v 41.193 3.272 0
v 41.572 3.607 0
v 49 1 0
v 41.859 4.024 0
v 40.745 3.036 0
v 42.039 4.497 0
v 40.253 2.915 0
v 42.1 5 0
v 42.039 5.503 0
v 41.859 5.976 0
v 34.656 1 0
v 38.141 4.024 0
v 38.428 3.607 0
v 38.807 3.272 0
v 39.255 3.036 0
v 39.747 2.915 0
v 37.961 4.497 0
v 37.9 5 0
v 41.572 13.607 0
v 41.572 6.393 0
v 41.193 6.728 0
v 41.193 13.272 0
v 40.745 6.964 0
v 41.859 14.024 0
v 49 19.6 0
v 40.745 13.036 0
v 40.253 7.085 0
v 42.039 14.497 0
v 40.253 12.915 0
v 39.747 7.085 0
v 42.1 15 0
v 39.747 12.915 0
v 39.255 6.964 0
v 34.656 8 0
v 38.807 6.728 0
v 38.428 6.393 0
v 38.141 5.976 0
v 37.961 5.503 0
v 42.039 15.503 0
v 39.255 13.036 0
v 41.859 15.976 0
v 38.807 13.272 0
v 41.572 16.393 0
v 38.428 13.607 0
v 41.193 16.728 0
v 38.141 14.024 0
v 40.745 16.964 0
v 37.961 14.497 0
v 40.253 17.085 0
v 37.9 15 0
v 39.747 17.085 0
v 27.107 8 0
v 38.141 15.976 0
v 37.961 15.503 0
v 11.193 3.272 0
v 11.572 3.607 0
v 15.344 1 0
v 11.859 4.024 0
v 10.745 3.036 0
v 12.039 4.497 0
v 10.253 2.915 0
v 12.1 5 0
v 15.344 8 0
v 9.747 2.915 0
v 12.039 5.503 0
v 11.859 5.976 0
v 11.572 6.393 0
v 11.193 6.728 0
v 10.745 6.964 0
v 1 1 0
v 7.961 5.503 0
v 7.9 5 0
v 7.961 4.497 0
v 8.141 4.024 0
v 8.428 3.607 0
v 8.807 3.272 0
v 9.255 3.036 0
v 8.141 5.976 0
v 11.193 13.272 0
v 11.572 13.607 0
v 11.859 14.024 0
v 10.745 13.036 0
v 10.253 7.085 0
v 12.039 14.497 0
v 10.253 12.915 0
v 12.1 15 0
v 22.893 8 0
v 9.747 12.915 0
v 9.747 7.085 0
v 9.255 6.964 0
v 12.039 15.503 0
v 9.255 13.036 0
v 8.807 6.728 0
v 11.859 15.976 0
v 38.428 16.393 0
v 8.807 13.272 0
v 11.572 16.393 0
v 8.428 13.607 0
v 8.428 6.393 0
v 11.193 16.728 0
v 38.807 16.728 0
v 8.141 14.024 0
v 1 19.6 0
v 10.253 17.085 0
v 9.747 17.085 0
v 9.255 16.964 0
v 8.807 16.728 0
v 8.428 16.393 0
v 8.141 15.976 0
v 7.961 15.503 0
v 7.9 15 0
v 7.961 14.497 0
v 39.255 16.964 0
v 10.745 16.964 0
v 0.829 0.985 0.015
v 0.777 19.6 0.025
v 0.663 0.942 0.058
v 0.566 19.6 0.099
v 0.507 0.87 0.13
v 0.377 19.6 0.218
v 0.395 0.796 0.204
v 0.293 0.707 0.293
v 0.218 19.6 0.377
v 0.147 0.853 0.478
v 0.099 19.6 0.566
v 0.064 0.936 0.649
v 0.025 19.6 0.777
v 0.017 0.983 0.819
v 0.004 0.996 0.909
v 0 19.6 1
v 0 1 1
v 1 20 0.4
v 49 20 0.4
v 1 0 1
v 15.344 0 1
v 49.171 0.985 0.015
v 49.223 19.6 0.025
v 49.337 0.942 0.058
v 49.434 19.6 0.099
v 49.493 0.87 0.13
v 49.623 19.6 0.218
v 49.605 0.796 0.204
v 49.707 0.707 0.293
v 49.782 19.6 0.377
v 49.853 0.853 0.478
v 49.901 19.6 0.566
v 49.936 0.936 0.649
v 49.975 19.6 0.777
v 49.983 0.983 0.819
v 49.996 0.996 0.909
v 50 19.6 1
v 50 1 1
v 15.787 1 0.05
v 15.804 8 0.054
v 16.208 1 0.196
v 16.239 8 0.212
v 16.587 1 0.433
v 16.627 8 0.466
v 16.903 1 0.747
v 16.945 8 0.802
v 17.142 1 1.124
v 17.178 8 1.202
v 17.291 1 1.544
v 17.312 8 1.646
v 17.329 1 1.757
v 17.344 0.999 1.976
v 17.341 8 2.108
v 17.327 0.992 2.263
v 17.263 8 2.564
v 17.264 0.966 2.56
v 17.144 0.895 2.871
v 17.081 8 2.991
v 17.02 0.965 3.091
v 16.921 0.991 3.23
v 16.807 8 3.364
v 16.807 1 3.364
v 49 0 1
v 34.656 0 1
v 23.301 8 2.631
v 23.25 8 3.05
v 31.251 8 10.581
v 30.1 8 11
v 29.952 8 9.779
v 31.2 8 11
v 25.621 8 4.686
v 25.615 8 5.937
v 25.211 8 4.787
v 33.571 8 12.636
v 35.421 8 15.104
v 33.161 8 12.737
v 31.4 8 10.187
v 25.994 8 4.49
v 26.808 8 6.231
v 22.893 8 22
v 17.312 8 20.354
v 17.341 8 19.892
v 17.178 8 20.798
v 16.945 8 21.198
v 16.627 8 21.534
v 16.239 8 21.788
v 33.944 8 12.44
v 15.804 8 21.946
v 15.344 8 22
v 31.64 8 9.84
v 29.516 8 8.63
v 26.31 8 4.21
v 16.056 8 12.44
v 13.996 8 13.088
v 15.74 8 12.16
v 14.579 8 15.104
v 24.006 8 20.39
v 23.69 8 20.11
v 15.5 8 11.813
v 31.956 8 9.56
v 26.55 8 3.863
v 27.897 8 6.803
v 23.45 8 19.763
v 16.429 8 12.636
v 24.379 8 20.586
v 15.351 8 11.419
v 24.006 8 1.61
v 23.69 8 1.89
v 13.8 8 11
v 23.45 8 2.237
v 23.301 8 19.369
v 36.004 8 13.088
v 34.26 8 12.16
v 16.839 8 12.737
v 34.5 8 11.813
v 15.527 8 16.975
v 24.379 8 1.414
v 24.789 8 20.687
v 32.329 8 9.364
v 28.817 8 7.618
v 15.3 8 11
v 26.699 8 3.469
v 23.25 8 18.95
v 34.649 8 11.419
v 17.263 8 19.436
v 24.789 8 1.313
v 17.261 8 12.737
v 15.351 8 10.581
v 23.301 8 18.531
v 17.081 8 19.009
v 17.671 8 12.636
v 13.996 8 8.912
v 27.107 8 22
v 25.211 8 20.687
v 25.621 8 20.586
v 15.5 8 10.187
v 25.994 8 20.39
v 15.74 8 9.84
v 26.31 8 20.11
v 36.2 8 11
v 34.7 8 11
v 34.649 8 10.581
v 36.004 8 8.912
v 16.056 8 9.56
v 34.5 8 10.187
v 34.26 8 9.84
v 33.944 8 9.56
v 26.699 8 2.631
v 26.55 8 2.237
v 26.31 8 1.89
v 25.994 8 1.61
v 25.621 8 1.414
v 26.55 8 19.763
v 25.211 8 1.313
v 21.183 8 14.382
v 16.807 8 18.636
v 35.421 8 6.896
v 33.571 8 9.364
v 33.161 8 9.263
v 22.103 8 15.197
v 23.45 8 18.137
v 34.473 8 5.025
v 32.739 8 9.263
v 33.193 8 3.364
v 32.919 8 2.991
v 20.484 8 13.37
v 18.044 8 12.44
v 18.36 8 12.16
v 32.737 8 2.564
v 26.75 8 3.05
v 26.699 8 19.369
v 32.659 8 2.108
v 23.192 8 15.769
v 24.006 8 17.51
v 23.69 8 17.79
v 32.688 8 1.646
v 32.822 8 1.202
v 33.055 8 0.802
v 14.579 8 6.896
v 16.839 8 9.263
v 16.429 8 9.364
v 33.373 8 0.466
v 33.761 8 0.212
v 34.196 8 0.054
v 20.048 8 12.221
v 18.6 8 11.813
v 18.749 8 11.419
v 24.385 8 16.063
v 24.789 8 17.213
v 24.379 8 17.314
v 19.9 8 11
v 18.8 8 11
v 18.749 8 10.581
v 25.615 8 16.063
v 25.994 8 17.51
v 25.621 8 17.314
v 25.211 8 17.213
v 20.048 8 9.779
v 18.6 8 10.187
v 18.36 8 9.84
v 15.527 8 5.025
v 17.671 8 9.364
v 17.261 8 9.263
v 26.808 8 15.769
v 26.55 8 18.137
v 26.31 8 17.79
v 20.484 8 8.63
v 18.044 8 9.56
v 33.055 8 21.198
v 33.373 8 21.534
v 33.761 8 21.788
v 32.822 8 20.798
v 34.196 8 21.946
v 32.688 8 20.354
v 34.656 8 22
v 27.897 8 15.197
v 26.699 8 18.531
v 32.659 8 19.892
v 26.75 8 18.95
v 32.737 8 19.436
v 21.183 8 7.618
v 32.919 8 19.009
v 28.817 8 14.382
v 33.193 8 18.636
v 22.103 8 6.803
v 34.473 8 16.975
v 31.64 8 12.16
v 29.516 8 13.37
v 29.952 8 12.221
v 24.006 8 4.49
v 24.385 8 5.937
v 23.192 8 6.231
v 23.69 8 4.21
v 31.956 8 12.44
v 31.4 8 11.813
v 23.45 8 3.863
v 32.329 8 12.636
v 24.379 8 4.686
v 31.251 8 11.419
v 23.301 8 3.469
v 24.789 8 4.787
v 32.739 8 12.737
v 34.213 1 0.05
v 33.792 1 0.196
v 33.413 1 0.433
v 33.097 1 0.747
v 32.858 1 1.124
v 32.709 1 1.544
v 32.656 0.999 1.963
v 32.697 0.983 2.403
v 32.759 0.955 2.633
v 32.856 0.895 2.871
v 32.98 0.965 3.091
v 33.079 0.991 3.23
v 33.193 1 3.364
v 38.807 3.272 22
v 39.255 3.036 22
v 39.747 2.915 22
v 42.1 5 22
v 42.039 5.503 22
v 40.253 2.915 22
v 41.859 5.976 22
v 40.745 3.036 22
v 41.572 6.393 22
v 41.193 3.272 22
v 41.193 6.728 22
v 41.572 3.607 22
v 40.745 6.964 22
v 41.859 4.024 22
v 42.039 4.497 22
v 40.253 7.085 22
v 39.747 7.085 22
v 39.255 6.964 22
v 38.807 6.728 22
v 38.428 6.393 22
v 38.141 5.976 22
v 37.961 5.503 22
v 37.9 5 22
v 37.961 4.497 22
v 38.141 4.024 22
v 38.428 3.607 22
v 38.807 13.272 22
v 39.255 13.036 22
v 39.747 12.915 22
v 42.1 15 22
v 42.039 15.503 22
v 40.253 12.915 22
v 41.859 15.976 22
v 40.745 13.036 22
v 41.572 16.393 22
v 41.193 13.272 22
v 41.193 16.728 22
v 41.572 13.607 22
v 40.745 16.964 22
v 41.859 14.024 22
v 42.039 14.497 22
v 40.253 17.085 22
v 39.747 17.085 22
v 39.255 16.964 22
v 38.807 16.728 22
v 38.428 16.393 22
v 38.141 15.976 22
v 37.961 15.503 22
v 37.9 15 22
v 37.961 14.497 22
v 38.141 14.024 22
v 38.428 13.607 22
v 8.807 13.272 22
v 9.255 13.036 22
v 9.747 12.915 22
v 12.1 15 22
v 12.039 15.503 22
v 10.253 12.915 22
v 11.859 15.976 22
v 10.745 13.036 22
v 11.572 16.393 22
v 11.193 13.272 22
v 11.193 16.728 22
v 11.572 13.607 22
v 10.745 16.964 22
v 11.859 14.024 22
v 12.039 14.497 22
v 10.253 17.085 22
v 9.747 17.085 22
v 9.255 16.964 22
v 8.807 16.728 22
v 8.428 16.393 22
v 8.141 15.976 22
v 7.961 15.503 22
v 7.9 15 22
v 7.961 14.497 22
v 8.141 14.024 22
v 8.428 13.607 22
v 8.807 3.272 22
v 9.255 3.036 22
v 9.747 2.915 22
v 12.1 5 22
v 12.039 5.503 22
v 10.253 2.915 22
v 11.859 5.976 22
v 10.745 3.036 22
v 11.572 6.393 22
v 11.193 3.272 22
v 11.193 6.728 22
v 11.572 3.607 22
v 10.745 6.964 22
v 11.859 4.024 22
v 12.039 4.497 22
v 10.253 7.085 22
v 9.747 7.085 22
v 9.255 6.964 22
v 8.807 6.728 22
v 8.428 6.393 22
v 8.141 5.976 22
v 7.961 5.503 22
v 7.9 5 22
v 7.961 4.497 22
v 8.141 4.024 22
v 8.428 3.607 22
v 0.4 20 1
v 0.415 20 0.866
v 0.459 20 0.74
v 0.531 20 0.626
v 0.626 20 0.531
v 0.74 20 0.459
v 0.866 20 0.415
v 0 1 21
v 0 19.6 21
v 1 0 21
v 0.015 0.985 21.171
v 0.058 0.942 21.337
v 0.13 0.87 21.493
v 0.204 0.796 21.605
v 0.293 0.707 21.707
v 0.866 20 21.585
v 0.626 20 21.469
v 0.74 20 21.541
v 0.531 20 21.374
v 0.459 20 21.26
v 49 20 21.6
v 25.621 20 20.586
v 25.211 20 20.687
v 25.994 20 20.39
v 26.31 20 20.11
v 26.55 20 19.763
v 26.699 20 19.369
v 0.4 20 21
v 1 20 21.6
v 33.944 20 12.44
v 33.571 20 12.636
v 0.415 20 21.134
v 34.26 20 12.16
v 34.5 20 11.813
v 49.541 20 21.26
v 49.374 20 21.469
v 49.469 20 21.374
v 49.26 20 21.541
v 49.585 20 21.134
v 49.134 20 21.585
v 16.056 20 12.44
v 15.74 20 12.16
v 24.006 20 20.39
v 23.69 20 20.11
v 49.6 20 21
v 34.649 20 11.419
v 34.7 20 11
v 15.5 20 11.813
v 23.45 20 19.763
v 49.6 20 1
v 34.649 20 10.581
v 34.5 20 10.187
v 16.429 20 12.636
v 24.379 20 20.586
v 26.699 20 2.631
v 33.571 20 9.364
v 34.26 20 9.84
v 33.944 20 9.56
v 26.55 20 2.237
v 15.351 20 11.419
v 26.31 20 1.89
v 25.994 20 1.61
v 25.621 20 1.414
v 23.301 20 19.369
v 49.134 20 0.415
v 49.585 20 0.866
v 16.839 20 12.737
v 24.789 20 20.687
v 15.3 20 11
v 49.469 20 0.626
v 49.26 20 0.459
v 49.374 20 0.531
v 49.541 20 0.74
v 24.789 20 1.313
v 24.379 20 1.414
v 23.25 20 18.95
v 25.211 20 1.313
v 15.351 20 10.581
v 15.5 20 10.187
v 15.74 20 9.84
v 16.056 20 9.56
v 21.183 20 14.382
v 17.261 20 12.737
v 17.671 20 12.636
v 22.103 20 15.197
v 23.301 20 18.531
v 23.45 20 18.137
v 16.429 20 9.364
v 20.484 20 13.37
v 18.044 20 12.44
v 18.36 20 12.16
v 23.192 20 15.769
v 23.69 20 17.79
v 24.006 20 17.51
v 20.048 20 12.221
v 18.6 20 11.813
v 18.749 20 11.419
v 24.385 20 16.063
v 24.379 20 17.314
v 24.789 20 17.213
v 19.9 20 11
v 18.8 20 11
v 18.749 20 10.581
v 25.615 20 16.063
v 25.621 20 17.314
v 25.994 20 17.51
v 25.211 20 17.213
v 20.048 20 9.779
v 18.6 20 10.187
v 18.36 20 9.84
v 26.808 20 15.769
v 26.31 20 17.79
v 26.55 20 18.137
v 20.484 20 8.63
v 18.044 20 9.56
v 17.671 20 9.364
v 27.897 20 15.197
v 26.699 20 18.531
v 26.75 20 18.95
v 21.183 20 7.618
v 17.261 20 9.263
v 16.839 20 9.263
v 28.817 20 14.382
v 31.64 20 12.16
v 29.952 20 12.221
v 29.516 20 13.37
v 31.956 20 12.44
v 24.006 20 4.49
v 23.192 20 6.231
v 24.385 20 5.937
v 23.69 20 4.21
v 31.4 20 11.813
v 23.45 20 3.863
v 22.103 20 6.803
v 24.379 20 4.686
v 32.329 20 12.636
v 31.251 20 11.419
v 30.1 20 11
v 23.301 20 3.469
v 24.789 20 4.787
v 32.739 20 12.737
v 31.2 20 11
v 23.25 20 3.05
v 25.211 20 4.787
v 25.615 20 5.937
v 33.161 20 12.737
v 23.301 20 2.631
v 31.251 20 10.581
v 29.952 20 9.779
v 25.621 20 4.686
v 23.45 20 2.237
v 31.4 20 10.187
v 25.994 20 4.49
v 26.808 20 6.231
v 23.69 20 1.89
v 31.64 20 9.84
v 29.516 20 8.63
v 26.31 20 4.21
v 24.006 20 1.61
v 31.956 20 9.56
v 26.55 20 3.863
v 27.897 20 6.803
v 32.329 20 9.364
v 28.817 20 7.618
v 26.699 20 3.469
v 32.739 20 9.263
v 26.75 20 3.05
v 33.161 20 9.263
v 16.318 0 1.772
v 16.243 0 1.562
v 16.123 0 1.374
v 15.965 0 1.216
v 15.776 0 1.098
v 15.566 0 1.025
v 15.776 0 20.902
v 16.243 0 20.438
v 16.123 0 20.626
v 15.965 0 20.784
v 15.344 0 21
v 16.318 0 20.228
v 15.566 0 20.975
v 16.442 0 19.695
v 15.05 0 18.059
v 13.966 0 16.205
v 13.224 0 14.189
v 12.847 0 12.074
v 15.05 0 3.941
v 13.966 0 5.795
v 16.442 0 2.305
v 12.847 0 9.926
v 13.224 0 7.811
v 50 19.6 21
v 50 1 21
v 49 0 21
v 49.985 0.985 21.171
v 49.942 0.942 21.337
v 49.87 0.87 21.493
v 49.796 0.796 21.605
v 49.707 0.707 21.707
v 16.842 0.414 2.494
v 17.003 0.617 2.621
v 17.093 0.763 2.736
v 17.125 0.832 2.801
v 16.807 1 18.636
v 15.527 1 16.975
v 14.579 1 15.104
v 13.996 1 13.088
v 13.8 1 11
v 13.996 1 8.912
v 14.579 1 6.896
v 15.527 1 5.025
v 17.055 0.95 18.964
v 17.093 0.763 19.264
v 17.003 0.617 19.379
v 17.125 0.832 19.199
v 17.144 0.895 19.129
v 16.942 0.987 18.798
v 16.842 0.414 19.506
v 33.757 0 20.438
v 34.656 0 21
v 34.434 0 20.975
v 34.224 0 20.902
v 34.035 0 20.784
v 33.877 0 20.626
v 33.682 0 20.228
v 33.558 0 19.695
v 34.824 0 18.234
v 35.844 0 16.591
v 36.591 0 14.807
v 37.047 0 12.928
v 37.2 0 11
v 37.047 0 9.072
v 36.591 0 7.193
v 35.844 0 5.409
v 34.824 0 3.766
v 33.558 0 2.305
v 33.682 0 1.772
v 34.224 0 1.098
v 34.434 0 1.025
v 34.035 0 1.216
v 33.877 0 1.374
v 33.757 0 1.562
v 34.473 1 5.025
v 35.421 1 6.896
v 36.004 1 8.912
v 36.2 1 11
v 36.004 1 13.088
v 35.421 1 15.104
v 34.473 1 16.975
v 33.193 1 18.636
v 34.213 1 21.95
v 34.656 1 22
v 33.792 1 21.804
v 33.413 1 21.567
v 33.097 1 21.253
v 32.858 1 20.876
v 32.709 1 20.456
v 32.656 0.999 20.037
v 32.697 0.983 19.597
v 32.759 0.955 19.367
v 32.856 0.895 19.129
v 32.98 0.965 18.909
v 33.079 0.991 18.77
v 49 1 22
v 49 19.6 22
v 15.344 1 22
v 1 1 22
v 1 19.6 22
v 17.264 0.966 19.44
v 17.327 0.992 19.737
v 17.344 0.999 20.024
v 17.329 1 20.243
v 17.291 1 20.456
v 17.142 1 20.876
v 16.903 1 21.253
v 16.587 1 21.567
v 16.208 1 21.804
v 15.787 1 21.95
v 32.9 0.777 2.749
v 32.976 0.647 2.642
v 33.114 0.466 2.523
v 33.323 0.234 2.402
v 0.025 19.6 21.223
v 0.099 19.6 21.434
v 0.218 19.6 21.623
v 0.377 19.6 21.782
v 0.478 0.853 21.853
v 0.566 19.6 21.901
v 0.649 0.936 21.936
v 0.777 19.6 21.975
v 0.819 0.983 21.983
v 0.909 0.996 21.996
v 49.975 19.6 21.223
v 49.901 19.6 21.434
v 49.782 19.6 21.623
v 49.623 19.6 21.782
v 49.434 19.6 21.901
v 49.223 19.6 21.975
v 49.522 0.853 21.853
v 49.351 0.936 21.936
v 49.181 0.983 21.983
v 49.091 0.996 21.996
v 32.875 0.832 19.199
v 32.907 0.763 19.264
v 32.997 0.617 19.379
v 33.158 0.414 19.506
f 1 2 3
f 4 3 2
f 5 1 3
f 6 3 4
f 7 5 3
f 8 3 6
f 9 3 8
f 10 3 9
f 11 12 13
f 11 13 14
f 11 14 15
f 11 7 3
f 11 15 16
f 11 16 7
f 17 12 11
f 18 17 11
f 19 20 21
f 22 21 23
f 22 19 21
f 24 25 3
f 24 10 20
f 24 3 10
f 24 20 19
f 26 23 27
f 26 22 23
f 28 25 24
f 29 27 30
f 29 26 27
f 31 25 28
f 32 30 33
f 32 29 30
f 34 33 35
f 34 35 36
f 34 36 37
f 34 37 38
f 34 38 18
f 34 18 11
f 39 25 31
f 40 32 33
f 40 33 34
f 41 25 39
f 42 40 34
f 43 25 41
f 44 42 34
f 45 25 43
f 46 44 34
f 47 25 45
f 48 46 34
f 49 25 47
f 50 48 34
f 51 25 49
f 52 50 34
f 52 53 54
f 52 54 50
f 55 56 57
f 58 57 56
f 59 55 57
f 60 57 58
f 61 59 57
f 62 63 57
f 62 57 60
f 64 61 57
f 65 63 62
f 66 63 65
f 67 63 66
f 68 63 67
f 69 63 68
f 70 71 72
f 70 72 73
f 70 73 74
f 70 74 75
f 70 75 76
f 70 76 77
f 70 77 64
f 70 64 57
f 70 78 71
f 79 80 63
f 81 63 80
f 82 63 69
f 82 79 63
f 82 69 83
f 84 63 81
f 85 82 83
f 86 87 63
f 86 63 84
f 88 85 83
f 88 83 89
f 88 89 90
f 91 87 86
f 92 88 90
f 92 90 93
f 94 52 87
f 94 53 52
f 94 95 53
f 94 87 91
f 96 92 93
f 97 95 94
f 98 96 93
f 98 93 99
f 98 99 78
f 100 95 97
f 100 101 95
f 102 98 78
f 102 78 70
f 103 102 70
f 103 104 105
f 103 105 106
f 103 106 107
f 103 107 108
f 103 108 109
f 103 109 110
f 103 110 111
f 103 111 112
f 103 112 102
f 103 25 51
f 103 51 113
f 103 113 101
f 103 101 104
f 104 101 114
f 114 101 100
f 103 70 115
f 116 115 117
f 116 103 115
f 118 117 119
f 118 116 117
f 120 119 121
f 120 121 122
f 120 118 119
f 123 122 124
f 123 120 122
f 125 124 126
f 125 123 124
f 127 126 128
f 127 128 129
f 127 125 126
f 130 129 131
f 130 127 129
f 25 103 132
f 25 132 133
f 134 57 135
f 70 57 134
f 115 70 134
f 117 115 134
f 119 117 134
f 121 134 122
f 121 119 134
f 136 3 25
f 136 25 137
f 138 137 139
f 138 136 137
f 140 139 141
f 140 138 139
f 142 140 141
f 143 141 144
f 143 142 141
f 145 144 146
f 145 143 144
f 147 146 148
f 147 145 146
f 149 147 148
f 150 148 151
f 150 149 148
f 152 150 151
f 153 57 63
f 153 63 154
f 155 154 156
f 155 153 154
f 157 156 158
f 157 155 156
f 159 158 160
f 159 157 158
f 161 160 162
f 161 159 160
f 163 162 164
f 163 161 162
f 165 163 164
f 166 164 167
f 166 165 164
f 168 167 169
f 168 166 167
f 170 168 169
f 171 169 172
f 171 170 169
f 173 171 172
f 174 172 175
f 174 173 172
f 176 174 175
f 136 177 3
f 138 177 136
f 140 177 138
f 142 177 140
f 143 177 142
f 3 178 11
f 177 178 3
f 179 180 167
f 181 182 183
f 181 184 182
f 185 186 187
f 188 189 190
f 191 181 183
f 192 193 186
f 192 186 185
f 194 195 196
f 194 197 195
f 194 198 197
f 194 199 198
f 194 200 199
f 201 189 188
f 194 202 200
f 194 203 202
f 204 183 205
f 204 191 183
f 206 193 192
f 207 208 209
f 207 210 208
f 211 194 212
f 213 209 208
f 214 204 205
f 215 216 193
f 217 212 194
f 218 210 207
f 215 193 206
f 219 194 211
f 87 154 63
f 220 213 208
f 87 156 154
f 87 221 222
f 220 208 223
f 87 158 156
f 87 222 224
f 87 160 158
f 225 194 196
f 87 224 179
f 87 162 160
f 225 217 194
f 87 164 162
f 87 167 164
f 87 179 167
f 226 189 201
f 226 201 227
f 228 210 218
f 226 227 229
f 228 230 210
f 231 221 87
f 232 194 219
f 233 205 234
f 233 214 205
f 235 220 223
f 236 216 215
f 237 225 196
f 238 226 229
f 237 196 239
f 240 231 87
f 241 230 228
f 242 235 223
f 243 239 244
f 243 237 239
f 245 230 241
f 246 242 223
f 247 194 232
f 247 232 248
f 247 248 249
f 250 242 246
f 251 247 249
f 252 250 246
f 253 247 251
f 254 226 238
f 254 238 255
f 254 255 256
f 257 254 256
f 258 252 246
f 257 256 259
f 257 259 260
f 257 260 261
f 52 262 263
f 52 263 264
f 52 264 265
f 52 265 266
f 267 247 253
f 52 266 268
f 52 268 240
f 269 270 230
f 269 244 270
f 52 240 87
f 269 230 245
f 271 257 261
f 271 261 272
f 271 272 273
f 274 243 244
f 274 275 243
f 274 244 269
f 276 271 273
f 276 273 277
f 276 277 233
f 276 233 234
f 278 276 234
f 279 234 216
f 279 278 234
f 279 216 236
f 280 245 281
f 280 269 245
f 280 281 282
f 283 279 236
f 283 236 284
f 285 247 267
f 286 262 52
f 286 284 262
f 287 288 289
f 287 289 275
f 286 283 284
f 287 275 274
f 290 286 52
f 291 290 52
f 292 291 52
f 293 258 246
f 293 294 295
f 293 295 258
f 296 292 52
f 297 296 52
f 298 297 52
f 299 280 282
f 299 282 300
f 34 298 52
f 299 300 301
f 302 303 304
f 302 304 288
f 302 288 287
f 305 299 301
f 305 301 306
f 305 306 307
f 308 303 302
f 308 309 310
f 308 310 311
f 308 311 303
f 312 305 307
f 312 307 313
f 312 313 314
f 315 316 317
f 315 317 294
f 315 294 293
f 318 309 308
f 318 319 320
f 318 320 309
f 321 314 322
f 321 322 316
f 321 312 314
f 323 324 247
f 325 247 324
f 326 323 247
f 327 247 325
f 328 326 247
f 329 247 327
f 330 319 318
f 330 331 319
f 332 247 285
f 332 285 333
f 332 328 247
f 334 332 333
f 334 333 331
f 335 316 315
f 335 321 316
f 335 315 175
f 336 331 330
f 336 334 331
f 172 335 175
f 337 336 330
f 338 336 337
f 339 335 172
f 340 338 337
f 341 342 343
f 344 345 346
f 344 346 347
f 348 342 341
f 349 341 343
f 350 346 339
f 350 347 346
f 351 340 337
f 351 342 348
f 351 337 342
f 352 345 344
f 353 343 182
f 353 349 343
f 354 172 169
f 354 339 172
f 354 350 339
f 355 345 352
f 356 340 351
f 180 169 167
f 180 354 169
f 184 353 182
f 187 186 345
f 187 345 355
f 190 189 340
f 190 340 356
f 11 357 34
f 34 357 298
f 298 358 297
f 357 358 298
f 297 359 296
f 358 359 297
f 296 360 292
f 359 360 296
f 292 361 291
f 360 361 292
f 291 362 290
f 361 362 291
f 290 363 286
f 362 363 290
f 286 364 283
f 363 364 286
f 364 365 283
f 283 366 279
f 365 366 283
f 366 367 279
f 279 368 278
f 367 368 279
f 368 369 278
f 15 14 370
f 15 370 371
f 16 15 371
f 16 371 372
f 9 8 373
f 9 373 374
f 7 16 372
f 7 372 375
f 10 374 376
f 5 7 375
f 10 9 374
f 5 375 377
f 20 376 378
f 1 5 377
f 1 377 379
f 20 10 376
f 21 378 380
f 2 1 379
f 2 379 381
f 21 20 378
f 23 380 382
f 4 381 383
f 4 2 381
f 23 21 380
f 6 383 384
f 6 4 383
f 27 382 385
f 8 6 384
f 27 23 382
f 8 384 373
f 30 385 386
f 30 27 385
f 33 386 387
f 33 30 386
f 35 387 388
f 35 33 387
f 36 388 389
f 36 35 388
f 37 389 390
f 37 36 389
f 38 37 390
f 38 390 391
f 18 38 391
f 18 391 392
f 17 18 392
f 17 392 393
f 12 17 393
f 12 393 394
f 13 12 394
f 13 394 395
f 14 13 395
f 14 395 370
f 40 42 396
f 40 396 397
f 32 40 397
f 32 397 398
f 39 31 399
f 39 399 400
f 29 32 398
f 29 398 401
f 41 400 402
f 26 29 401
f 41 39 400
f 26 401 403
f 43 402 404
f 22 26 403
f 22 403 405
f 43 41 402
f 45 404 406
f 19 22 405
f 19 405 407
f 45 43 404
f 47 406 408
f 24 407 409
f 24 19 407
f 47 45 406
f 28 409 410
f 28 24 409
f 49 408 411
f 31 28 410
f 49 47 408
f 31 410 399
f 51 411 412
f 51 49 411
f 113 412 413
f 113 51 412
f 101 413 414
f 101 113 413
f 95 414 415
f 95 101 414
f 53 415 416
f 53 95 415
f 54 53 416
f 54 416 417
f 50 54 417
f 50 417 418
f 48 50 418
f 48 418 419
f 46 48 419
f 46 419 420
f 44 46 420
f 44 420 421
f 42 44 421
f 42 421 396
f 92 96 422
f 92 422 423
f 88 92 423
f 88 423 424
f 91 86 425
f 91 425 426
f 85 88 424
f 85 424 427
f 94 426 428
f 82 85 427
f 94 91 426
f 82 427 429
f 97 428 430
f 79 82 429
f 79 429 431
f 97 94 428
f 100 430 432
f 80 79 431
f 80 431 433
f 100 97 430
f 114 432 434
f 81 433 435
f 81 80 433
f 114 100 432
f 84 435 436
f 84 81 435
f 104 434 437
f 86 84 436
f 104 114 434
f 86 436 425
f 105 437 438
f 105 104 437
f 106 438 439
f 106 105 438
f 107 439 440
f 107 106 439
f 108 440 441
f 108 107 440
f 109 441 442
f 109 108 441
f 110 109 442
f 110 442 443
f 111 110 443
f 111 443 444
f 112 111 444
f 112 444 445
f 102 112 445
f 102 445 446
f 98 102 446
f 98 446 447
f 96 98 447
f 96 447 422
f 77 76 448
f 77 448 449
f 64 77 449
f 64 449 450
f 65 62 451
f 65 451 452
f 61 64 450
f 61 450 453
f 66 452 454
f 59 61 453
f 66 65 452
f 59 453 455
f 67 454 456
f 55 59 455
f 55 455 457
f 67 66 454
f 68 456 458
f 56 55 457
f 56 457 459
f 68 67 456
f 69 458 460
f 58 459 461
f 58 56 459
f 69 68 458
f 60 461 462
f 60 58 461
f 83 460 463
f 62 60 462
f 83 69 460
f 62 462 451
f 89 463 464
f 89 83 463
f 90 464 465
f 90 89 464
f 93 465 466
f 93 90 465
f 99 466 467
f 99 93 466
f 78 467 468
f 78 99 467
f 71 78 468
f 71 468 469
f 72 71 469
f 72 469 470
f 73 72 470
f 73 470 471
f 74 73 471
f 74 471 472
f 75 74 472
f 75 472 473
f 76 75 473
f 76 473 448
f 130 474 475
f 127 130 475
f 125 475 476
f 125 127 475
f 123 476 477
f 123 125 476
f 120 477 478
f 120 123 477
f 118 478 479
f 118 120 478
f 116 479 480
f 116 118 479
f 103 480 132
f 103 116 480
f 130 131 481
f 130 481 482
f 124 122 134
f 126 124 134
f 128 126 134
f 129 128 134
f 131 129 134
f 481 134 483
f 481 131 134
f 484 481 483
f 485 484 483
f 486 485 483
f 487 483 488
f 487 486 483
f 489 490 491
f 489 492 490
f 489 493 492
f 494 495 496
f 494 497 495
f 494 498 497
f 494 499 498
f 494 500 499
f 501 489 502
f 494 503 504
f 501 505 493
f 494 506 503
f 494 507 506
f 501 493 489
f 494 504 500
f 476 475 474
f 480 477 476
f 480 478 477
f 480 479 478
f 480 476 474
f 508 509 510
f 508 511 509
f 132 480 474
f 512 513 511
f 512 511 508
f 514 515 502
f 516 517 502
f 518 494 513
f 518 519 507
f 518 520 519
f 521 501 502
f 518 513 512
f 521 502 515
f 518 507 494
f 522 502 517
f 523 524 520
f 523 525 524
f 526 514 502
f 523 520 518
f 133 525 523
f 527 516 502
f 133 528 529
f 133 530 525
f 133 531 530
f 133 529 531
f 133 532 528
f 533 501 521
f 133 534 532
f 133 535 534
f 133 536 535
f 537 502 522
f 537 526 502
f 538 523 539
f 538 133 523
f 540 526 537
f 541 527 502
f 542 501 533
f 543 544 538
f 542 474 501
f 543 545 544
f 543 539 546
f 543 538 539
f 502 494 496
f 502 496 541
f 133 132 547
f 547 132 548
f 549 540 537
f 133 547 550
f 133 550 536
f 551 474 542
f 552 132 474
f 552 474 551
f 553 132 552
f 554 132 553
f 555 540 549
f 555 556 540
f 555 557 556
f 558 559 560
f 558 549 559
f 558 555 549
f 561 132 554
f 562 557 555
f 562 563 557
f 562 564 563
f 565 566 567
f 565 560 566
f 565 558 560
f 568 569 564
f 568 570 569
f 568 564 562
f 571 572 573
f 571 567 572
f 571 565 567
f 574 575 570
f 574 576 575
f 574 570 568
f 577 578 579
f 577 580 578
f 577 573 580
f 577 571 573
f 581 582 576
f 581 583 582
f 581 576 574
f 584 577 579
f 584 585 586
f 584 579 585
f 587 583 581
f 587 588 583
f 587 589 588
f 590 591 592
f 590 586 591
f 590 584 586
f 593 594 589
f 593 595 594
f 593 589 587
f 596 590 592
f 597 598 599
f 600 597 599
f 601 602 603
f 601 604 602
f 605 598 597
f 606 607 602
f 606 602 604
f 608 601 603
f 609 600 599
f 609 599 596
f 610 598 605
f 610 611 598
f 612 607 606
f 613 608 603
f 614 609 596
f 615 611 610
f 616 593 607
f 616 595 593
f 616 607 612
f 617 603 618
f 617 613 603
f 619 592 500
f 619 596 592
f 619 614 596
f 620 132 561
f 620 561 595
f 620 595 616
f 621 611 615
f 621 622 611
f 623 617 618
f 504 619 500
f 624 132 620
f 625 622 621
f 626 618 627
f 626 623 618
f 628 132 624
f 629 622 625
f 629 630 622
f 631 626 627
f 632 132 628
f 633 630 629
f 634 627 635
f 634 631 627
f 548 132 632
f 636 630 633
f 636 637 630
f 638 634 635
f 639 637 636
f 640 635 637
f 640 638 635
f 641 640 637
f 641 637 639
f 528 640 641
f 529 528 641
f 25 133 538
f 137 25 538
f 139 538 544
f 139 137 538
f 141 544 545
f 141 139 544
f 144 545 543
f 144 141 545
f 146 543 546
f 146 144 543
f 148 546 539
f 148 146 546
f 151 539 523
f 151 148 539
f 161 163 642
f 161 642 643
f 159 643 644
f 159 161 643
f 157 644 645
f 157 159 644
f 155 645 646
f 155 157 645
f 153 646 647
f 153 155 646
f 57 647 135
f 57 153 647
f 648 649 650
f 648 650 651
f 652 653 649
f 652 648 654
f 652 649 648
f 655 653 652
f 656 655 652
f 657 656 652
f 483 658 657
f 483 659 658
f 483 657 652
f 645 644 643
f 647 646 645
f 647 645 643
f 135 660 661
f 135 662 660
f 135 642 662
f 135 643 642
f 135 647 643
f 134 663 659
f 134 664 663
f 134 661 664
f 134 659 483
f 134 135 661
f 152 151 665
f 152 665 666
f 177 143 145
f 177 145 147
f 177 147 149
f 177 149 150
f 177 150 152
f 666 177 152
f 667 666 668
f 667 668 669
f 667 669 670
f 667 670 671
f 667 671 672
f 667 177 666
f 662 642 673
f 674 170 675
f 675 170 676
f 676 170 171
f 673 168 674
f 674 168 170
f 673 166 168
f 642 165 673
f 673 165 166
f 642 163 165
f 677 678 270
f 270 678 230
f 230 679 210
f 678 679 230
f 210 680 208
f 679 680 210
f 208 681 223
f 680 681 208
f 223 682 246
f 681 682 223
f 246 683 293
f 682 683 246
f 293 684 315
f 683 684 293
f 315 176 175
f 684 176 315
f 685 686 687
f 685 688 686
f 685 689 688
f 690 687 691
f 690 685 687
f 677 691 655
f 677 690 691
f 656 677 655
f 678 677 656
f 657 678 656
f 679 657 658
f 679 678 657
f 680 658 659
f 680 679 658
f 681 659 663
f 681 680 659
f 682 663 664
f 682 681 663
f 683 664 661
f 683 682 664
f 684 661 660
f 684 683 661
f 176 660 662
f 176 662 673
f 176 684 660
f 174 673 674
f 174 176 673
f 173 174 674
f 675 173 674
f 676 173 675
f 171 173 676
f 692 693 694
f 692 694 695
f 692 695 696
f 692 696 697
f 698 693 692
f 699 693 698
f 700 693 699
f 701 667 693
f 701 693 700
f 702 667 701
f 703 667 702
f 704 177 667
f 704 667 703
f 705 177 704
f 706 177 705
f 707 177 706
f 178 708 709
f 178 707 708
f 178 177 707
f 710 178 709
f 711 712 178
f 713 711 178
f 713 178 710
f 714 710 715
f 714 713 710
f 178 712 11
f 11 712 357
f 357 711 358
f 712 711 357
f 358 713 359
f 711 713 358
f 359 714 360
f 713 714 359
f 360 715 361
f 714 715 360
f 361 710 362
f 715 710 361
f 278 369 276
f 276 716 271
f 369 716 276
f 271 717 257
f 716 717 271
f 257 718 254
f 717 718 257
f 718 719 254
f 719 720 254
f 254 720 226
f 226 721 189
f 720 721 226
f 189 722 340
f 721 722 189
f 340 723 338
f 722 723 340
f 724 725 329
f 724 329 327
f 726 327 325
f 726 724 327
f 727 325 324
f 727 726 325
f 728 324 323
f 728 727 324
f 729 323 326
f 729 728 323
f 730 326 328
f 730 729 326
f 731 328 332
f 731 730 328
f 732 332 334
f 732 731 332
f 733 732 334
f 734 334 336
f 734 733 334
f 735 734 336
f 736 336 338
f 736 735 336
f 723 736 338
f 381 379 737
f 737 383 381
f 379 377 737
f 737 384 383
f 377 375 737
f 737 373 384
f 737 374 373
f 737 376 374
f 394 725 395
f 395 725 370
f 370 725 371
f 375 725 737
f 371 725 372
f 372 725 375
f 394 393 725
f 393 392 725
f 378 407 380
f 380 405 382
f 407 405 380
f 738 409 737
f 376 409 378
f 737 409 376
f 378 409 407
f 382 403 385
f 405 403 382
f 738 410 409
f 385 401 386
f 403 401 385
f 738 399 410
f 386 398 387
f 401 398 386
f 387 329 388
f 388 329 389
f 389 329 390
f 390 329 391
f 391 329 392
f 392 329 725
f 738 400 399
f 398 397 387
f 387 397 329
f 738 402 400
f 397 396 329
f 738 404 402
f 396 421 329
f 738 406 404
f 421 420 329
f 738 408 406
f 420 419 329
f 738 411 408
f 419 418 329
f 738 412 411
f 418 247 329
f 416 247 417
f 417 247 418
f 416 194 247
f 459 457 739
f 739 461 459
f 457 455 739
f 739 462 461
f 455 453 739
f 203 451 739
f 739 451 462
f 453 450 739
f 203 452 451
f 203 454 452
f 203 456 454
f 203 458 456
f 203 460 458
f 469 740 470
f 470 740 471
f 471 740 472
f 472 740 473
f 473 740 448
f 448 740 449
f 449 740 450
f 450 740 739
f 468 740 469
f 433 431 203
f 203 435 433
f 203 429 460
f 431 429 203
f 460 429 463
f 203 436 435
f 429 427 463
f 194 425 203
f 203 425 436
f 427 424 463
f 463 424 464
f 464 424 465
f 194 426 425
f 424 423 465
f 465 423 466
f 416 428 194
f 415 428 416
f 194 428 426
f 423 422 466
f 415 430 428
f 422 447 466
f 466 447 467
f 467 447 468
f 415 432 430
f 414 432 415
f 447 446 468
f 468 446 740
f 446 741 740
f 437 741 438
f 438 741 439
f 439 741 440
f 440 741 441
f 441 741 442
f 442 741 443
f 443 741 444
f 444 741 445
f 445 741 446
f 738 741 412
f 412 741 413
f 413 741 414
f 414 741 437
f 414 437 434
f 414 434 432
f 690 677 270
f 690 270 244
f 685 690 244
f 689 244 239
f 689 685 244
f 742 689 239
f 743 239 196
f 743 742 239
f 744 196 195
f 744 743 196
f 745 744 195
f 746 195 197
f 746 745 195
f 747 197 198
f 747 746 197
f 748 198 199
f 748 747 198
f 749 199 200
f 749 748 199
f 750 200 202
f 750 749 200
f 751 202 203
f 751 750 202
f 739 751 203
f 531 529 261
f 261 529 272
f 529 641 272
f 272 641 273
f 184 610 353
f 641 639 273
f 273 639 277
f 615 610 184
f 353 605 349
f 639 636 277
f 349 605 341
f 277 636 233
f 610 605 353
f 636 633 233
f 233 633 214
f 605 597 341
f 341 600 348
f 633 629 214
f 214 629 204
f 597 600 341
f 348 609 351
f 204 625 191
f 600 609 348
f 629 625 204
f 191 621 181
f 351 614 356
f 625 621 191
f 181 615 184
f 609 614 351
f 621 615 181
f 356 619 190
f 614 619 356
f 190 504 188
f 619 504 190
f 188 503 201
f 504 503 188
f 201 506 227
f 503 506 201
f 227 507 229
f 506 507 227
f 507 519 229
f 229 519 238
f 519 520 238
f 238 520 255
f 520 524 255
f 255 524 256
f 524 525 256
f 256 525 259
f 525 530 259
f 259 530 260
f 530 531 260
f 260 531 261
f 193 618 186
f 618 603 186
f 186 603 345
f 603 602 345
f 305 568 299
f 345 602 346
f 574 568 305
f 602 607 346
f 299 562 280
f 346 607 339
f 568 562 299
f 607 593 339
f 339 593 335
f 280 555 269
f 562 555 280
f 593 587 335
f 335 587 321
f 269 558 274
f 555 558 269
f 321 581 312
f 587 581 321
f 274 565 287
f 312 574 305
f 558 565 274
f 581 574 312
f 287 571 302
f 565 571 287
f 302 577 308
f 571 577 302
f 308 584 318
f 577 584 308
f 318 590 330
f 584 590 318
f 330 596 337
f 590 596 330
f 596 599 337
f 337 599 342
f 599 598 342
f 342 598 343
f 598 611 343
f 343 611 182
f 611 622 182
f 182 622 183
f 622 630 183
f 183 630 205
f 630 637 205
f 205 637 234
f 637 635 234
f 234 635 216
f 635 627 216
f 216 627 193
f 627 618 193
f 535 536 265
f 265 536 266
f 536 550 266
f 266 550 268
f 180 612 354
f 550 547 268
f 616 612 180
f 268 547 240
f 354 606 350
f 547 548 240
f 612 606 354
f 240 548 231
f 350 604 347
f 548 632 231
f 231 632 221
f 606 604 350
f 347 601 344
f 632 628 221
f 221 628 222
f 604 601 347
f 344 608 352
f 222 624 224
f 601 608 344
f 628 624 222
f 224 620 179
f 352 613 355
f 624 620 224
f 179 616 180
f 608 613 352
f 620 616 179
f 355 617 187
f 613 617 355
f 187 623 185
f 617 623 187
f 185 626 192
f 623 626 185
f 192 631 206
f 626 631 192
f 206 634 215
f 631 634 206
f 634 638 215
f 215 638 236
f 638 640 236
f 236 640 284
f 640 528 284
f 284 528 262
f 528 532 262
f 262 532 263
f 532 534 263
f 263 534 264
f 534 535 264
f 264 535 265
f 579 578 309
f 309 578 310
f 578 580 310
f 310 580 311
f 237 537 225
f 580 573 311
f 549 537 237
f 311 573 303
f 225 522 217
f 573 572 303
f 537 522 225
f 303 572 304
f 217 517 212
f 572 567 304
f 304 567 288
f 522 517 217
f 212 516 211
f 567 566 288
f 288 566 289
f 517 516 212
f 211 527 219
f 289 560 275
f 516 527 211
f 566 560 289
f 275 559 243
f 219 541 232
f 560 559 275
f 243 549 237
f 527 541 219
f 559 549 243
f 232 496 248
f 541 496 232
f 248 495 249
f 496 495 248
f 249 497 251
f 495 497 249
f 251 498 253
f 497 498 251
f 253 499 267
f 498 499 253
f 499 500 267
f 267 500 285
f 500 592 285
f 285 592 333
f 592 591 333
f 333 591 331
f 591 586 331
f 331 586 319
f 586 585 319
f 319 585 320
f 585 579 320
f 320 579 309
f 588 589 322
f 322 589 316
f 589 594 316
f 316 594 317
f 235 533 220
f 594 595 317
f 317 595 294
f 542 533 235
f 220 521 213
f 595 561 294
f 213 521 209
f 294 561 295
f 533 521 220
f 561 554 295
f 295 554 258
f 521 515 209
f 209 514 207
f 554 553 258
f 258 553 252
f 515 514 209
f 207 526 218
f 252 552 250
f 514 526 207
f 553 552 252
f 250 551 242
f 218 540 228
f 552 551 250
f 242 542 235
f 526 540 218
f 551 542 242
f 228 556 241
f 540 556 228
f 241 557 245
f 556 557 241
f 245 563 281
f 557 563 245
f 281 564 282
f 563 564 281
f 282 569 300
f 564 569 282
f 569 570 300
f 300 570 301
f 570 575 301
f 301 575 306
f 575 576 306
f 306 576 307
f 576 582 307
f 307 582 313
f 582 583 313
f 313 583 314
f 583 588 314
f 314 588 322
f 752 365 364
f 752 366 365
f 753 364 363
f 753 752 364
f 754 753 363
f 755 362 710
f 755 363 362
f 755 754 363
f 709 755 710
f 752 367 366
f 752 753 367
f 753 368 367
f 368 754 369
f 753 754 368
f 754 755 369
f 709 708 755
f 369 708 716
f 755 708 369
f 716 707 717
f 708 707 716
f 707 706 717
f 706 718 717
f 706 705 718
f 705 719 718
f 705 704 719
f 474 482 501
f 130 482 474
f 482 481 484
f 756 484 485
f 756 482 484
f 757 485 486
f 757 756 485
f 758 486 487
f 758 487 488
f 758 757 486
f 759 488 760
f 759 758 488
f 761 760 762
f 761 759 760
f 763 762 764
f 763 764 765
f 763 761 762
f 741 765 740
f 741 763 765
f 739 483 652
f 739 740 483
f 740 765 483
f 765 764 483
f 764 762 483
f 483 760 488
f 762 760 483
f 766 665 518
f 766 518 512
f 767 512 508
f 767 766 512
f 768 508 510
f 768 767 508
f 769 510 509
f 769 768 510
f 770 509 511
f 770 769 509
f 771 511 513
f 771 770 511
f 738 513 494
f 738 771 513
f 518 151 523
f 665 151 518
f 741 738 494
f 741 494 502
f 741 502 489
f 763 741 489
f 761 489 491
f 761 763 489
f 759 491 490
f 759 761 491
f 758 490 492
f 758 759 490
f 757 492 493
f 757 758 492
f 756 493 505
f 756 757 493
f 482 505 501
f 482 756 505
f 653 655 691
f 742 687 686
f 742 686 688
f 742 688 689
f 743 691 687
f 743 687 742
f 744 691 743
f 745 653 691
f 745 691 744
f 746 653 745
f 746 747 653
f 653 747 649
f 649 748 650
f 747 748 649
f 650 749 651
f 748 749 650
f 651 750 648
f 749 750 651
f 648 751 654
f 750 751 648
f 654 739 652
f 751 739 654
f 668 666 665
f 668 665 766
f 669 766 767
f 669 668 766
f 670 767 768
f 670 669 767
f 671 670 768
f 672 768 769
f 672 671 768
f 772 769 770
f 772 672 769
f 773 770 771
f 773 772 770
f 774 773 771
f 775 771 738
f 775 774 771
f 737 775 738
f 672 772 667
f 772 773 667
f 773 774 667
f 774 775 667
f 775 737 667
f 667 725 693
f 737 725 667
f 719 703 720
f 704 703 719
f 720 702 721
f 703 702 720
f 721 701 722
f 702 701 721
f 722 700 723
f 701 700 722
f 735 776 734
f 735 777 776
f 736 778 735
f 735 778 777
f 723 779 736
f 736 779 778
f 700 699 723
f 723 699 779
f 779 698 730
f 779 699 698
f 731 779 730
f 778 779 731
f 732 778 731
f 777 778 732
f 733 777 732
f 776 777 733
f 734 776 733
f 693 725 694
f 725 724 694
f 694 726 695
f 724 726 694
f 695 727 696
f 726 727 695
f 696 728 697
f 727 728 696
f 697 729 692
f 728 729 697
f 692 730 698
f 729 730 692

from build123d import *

# Parameters (mm, degrees)
SKETCH_W        = 50
SKETCH_H        = 20
SKETCH_R        = 2.1
PAD_DEPTH       = 22
SKETCH001_R     = 11.2
POCKET_DEPTH    = 8
SKETCH002_R     = 5.1
SKETCH002_R_2   = 1.75
POCKET001_DEPTH = 20
CHAMFER_SIZE    = 1
FILLET_R        = 2
CHAMFER001_SIZE = 1
FILLET001_R     = 1
CHAMFER002_SIZE = 0.4


with BuildPart() as part:
    # Sketch → Pad (new body)
    with BuildSketch(Plane.XY):
        with Locations((25, 10)):
            Rectangle(SKETCH_W, SKETCH_H)
        with Locations((10, 15)):
            Circle(SKETCH_R, mode=Mode.SUBTRACT)
        with Locations((10, 5)):
            Circle(SKETCH_R, mode=Mode.SUBTRACT)
        with Locations((40, 15)):
            Circle(SKETCH_R, mode=Mode.SUBTRACT)
        with Locations((40, 5)):
            Circle(SKETCH_R, mode=Mode.SUBTRACT)
    extrude(amount=PAD_DEPTH)

    # Sketch001 (on Face3 of Pad) → Pocket (cut)
    with BuildSketch(Plane.XZ):
        with Locations((25, 11)):
            Circle(SKETCH001_R)
    extrude(amount=-POCKET_DEPTH, mode=Mode.SUBTRACT)

    # Sketch002 (on Face1 of Pocket) → Pocket001 (cut)
    with BuildSketch(Plane(origin=(0, 20, 0), x_dir=(-1, 0, 0), z_dir=(0, 1, 0))):
        with Locations((-25, 11)):
            Circle(SKETCH002_R)
        with Locations((-25, 18.95)):
            Circle(SKETCH002_R_2)
        with Locations((-25, 3.05)):
            Circle(SKETCH002_R_2)
        with Locations((-32.95, 11)):
            Circle(SKETCH002_R_2)
        with Locations((-17.05, 11)):
            Circle(SKETCH002_R_2)
    extrude(amount=-POCKET001_DEPTH, mode=Mode.SUBTRACT)

    # Chamfer
    chamfer_edges = [part.edges().sort_by_distance(p)[0] for p in [
        (13.8, 0, 11),
        (33.632493, 0, 18.13583),
    ]]
    chamfer(chamfer_edges, length=CHAMFER_SIZE)

    # Fillet
    fillet_edges = [part.edges().sort_by_distance(p)[0] for p in [
        (22.892869, 4.5, 0),
        (27.107131, 4.5, 0),
        (22.892869, 4.5, 22),
        (27.107131, 4.5, 22),
    ]]
    fillet(fillet_edges, radius=FILLET_R)

    # Chamfer001
    chamfer001_edges = [part.edges().sort_by_distance(p)[0] for p in [
        (7.671957, 0, 22),
        (0, 0, 11),
        (7.671957, 0, 0),
        (42.328043, 0, 0),
        (50, 0, 11),
        (42.328043, 0, 22),
    ]]
    chamfer(chamfer001_edges, length=CHAMFER001_SIZE)

    # Fillet001
    fillet001_edges = [part.edges().sort_by_distance(p)[0] for p in [
        (0, 10.5, 0),
        (50, 10.5, 0),
        (50, 10.5, 22),
        (0, 10.5, 22),
    ]]
    fillet(fillet001_edges, radius=FILLET001_R)

    # Chamfer002
    chamfer002_edges = [part.edges().sort_by_distance(p)[0] for p in [
        (49.707107, 20, 21.707107),
        (25, 20, 22),
        (0.292893, 20, 21.707107),
        (0, 20, 11),
        (0.292893, 20, 0.292893),
        (25, 20, 0),
        (49.707107, 20, 0.292893),
        (50, 20, 11),
    ]]
    chamfer(chamfer002_edges, length=CHAMFER002_SIZE)


solid = part.part
